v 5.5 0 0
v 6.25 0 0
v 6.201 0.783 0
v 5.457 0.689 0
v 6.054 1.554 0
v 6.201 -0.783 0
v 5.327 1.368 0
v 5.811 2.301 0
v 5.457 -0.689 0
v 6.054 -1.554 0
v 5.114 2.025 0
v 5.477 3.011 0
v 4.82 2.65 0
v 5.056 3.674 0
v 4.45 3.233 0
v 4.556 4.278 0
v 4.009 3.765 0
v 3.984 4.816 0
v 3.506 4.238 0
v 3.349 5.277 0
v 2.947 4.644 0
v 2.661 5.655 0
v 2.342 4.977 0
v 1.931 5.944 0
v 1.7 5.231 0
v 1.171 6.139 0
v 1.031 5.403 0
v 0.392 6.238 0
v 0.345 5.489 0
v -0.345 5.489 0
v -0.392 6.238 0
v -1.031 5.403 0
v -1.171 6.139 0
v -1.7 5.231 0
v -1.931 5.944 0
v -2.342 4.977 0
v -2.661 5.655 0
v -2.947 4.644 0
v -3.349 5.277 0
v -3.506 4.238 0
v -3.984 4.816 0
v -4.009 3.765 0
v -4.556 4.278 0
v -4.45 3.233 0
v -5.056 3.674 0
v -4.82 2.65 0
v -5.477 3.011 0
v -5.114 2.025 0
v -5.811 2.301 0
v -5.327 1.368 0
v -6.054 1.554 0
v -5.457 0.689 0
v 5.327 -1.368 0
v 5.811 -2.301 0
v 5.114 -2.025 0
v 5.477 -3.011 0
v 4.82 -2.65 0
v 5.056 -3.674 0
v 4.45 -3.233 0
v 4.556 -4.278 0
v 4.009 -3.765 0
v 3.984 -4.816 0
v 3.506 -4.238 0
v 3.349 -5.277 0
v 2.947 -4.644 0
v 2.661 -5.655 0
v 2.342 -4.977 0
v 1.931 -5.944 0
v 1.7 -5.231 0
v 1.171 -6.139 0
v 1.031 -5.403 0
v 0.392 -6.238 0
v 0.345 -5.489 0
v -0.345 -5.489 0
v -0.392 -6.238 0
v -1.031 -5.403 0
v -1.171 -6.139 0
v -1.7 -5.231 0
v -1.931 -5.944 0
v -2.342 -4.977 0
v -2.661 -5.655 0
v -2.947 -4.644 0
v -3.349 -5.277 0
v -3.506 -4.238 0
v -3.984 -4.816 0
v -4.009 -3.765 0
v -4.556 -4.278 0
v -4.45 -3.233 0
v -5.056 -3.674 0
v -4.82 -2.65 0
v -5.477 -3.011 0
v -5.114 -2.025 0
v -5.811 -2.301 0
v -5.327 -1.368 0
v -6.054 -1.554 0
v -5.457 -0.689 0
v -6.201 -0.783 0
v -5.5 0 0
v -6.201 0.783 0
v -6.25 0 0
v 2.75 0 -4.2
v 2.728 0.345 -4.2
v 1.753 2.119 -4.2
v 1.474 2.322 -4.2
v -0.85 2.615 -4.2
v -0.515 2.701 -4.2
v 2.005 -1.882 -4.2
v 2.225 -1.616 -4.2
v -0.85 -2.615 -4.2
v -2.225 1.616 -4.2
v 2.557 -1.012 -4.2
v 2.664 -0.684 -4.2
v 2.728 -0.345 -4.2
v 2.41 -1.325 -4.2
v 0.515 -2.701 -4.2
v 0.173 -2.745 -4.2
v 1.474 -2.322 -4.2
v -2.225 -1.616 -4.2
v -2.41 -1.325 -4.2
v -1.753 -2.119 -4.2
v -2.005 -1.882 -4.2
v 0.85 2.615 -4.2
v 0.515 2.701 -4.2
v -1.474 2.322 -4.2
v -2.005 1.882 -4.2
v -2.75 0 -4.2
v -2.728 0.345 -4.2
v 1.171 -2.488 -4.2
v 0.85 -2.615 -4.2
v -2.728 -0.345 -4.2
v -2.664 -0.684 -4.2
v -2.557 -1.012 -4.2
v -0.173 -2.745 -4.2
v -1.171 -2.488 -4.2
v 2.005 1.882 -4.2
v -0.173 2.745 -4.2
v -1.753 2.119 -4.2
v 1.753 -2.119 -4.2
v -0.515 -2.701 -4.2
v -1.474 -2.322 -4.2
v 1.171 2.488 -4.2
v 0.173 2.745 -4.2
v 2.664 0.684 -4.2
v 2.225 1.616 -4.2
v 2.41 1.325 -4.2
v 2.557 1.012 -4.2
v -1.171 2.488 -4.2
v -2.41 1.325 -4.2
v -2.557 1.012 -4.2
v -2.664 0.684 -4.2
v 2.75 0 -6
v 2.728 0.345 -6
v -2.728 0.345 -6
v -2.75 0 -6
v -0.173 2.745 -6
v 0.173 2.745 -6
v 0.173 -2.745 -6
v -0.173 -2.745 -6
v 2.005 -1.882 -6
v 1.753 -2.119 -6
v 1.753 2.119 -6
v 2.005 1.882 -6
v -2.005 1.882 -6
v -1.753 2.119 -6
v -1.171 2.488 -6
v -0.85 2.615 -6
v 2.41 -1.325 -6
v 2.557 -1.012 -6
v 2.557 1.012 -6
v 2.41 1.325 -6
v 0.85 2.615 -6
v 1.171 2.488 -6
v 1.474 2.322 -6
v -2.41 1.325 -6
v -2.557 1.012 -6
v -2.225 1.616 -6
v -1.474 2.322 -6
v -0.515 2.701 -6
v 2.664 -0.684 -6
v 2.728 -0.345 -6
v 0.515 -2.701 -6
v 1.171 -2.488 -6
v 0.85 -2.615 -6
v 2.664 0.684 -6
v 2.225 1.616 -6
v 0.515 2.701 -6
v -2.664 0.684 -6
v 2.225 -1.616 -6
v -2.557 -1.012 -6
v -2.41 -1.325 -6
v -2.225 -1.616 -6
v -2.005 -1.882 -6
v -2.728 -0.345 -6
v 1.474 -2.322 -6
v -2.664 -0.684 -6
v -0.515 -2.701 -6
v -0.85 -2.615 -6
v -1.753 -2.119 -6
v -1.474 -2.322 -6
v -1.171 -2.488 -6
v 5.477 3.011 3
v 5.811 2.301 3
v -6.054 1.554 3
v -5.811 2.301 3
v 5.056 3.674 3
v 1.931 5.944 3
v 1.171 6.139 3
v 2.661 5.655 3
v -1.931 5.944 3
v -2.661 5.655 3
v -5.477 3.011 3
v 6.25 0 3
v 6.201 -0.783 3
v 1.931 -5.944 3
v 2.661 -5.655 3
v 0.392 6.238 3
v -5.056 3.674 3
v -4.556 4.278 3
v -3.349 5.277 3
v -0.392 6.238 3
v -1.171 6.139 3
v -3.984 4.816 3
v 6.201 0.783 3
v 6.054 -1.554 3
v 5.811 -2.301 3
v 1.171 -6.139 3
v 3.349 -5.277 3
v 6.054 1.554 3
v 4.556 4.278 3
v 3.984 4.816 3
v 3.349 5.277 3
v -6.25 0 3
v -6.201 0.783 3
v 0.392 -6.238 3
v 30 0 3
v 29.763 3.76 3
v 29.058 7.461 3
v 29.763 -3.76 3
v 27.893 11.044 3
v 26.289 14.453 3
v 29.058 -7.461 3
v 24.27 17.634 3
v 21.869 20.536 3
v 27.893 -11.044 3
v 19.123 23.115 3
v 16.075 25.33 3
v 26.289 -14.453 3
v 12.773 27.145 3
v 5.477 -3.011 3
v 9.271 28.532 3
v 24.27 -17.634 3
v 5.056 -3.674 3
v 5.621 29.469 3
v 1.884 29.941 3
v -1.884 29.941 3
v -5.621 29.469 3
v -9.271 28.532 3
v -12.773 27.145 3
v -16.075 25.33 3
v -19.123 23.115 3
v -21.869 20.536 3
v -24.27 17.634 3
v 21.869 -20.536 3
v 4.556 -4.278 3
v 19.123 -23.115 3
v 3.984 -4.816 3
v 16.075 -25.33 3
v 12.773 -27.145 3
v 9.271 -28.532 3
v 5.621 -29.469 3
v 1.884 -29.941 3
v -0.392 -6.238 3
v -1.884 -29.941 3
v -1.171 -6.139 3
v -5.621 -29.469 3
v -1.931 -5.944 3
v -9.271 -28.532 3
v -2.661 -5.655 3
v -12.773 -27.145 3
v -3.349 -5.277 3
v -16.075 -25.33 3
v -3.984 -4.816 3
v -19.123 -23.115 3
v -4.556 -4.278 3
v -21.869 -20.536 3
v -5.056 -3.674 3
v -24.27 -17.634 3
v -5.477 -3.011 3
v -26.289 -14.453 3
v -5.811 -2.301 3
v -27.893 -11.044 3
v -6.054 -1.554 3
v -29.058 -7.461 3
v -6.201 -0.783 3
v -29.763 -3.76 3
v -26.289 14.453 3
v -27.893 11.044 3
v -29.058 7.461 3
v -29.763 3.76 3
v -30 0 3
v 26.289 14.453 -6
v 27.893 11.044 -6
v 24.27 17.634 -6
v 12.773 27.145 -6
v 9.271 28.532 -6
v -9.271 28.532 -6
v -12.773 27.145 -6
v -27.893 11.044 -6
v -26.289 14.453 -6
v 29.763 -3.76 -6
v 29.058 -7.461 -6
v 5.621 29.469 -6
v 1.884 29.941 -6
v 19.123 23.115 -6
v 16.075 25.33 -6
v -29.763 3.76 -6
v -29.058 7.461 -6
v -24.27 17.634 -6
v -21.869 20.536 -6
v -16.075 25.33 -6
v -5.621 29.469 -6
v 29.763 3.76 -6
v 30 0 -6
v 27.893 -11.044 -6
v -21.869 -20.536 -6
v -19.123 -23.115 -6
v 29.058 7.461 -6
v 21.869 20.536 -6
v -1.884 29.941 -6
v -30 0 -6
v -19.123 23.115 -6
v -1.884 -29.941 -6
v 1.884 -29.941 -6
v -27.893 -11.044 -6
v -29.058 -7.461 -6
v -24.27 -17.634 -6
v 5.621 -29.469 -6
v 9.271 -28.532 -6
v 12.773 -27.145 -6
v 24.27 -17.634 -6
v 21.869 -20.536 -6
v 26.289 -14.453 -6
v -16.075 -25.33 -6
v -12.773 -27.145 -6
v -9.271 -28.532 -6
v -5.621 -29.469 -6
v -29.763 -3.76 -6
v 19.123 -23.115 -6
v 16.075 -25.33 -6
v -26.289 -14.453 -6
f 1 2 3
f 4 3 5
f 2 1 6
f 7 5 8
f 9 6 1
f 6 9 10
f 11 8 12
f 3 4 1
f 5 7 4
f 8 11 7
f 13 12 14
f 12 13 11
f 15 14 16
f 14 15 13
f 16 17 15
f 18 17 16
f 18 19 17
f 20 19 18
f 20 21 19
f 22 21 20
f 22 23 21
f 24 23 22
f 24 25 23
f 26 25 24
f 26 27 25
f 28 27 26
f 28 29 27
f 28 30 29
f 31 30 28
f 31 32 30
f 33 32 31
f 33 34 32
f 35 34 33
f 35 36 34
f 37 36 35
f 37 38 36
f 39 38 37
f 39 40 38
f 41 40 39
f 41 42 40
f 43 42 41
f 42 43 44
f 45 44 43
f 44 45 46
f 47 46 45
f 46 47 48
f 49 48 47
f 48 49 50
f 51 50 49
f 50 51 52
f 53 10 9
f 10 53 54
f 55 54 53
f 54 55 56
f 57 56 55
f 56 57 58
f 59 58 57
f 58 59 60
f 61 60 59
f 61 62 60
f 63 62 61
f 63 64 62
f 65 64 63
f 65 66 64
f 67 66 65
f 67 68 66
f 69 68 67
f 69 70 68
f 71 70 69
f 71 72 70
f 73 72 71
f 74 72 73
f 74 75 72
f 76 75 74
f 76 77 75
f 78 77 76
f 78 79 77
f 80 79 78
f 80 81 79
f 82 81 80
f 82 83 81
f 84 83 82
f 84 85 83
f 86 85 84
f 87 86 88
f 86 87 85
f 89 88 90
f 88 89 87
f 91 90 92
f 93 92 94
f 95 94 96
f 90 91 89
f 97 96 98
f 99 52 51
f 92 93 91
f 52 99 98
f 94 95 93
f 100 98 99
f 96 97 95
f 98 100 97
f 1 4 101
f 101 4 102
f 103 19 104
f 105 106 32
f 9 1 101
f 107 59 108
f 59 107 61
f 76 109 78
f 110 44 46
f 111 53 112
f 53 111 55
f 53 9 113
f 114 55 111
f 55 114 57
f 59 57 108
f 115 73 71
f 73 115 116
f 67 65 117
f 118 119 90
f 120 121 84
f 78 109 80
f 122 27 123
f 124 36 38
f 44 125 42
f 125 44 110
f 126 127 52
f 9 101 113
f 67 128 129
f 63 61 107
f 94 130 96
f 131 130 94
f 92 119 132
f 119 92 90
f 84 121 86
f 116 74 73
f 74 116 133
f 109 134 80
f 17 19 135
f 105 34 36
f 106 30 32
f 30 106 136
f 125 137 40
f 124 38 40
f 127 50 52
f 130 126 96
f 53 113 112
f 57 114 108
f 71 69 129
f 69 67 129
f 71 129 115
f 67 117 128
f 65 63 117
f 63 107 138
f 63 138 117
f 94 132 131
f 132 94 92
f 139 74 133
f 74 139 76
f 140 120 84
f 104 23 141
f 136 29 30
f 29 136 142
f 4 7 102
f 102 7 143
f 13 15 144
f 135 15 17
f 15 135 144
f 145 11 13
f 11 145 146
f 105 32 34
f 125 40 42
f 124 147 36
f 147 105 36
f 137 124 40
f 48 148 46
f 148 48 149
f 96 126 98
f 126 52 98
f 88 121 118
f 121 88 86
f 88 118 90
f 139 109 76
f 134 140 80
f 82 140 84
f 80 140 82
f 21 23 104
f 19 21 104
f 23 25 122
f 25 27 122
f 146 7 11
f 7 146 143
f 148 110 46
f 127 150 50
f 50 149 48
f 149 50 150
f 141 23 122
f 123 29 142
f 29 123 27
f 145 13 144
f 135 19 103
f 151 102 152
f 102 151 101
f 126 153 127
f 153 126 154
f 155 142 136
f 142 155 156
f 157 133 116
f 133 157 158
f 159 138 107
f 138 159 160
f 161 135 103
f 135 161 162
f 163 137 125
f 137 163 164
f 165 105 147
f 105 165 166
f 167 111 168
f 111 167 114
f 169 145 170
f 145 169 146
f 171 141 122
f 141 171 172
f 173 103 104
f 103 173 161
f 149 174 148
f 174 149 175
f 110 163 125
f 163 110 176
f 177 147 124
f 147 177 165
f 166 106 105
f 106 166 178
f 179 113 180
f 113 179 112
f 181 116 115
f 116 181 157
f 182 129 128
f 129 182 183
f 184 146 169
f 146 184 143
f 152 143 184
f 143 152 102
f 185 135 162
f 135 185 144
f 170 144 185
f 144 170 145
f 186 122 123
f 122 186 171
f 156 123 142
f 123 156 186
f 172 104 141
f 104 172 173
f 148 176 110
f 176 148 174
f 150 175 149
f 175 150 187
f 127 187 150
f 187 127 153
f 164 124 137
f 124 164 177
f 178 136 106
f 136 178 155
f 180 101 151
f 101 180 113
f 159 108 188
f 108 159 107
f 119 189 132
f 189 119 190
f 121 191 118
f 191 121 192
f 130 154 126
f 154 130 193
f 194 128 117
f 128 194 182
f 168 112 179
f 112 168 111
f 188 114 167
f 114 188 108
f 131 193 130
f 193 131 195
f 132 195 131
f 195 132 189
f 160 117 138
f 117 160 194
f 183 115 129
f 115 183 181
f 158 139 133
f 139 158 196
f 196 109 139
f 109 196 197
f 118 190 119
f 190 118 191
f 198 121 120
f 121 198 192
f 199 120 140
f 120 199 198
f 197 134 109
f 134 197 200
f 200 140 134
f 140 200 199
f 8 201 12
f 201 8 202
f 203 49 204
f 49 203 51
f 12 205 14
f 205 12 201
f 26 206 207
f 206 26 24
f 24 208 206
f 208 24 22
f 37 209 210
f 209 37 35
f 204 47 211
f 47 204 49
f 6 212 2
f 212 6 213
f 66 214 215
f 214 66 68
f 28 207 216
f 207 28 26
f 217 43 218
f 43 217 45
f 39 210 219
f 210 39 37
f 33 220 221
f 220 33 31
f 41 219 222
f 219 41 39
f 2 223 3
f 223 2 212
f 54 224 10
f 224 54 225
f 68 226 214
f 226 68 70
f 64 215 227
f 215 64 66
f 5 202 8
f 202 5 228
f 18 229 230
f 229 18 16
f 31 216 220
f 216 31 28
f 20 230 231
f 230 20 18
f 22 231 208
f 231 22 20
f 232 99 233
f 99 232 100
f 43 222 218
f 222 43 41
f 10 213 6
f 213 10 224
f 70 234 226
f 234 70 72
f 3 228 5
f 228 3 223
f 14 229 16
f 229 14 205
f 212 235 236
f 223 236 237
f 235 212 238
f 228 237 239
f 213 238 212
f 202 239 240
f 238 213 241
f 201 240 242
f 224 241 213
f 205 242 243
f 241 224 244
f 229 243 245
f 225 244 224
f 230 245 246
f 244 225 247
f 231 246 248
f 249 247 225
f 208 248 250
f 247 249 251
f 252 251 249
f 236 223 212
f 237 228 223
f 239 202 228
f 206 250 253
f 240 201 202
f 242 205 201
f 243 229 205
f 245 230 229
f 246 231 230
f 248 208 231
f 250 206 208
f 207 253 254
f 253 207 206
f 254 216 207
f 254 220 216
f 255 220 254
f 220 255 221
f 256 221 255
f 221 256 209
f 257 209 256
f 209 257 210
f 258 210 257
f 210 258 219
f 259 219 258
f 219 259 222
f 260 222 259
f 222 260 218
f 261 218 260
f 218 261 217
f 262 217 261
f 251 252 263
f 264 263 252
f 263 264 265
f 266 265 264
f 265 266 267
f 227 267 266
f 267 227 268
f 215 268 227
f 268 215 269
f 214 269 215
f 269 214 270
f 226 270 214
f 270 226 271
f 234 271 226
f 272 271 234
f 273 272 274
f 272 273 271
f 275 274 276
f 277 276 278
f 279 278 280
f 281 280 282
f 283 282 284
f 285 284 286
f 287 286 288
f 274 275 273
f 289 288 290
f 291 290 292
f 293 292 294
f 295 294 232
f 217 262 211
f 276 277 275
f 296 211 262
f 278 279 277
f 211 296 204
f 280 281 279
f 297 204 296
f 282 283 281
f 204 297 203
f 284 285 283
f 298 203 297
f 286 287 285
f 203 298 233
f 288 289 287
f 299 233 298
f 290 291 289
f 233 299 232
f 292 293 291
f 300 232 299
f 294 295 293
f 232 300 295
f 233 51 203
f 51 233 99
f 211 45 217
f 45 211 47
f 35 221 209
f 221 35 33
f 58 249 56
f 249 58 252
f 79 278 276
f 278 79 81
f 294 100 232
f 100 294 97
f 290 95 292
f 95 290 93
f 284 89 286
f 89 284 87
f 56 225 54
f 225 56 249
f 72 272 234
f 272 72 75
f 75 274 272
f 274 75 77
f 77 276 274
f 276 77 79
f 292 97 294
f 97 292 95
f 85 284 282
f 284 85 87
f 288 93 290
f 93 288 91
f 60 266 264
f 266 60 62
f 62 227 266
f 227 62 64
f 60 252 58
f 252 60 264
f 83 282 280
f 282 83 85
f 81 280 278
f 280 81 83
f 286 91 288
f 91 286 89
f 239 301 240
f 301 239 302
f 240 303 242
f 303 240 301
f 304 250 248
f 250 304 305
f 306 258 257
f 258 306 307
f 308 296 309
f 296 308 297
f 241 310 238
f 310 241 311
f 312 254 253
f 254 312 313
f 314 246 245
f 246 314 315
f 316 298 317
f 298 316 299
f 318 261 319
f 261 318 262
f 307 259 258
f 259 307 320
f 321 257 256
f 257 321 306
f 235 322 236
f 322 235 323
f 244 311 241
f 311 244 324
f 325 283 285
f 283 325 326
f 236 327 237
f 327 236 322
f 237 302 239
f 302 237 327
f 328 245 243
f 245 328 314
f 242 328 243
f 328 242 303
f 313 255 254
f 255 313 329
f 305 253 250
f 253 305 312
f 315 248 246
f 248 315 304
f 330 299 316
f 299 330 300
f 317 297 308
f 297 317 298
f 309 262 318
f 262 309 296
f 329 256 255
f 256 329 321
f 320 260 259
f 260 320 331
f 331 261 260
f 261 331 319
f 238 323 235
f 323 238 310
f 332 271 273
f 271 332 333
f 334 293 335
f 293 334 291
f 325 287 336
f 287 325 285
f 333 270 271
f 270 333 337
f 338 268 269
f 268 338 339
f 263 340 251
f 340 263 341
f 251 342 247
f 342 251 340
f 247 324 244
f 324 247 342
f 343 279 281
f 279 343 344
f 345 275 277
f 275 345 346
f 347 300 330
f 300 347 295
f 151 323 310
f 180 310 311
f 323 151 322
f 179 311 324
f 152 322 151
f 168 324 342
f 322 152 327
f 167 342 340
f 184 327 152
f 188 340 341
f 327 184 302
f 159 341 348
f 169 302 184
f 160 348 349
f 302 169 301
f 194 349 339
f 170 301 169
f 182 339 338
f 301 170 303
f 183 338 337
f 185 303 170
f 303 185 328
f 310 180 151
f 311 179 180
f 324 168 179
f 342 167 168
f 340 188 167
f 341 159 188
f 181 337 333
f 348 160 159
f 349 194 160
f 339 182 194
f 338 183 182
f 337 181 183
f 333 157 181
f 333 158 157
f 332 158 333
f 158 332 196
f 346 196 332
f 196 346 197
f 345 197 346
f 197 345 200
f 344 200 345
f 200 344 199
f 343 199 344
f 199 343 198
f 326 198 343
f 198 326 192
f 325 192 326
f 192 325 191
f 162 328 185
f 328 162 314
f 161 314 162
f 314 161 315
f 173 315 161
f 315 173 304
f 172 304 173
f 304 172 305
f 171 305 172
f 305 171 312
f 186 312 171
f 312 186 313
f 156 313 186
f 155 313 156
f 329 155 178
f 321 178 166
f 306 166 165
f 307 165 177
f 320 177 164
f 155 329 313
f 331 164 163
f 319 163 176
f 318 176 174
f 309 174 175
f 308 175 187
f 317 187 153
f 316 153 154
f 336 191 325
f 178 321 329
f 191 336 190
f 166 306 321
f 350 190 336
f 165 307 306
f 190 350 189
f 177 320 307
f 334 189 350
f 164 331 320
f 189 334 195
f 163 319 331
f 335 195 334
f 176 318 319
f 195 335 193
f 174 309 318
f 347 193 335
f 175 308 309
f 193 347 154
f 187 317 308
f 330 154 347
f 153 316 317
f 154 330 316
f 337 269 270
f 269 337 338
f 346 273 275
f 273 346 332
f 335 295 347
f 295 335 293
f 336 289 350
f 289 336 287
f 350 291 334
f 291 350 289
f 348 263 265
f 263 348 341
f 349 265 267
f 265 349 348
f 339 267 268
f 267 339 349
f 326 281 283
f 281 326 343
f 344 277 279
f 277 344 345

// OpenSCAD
$fn = 50;

difference() {
	union() {
		translate(v = [0, 0, -6.0]) {
			cylinder(h = 9, r = 30.0);
		}
	}
	union() {
		translate(v = [0, 0, 0]) {
			rotate(a = [0, 0, 0]) {
				difference() {
					union() {
						translate(v = [0, 0, -9.0]) {
							cylinder(h = 9, r = 2.25);
						}
						translate(v = [0, 0, -4.2]) {
							cylinder(h = 4.2, r1 = 2.75, r2 = 5.5);
						}
						translate(v = [0, 0, -9.0]) {
							cylinder(h = 9, r = 2.75);
						}
						translate(v = [0, 0, -9.0]) {
							cylinder(h = 9, r = 2.25);
						}
					}
					union();
				}
			}
		}
		#cylinder(h = 3, r = 6.25);
	}
}
